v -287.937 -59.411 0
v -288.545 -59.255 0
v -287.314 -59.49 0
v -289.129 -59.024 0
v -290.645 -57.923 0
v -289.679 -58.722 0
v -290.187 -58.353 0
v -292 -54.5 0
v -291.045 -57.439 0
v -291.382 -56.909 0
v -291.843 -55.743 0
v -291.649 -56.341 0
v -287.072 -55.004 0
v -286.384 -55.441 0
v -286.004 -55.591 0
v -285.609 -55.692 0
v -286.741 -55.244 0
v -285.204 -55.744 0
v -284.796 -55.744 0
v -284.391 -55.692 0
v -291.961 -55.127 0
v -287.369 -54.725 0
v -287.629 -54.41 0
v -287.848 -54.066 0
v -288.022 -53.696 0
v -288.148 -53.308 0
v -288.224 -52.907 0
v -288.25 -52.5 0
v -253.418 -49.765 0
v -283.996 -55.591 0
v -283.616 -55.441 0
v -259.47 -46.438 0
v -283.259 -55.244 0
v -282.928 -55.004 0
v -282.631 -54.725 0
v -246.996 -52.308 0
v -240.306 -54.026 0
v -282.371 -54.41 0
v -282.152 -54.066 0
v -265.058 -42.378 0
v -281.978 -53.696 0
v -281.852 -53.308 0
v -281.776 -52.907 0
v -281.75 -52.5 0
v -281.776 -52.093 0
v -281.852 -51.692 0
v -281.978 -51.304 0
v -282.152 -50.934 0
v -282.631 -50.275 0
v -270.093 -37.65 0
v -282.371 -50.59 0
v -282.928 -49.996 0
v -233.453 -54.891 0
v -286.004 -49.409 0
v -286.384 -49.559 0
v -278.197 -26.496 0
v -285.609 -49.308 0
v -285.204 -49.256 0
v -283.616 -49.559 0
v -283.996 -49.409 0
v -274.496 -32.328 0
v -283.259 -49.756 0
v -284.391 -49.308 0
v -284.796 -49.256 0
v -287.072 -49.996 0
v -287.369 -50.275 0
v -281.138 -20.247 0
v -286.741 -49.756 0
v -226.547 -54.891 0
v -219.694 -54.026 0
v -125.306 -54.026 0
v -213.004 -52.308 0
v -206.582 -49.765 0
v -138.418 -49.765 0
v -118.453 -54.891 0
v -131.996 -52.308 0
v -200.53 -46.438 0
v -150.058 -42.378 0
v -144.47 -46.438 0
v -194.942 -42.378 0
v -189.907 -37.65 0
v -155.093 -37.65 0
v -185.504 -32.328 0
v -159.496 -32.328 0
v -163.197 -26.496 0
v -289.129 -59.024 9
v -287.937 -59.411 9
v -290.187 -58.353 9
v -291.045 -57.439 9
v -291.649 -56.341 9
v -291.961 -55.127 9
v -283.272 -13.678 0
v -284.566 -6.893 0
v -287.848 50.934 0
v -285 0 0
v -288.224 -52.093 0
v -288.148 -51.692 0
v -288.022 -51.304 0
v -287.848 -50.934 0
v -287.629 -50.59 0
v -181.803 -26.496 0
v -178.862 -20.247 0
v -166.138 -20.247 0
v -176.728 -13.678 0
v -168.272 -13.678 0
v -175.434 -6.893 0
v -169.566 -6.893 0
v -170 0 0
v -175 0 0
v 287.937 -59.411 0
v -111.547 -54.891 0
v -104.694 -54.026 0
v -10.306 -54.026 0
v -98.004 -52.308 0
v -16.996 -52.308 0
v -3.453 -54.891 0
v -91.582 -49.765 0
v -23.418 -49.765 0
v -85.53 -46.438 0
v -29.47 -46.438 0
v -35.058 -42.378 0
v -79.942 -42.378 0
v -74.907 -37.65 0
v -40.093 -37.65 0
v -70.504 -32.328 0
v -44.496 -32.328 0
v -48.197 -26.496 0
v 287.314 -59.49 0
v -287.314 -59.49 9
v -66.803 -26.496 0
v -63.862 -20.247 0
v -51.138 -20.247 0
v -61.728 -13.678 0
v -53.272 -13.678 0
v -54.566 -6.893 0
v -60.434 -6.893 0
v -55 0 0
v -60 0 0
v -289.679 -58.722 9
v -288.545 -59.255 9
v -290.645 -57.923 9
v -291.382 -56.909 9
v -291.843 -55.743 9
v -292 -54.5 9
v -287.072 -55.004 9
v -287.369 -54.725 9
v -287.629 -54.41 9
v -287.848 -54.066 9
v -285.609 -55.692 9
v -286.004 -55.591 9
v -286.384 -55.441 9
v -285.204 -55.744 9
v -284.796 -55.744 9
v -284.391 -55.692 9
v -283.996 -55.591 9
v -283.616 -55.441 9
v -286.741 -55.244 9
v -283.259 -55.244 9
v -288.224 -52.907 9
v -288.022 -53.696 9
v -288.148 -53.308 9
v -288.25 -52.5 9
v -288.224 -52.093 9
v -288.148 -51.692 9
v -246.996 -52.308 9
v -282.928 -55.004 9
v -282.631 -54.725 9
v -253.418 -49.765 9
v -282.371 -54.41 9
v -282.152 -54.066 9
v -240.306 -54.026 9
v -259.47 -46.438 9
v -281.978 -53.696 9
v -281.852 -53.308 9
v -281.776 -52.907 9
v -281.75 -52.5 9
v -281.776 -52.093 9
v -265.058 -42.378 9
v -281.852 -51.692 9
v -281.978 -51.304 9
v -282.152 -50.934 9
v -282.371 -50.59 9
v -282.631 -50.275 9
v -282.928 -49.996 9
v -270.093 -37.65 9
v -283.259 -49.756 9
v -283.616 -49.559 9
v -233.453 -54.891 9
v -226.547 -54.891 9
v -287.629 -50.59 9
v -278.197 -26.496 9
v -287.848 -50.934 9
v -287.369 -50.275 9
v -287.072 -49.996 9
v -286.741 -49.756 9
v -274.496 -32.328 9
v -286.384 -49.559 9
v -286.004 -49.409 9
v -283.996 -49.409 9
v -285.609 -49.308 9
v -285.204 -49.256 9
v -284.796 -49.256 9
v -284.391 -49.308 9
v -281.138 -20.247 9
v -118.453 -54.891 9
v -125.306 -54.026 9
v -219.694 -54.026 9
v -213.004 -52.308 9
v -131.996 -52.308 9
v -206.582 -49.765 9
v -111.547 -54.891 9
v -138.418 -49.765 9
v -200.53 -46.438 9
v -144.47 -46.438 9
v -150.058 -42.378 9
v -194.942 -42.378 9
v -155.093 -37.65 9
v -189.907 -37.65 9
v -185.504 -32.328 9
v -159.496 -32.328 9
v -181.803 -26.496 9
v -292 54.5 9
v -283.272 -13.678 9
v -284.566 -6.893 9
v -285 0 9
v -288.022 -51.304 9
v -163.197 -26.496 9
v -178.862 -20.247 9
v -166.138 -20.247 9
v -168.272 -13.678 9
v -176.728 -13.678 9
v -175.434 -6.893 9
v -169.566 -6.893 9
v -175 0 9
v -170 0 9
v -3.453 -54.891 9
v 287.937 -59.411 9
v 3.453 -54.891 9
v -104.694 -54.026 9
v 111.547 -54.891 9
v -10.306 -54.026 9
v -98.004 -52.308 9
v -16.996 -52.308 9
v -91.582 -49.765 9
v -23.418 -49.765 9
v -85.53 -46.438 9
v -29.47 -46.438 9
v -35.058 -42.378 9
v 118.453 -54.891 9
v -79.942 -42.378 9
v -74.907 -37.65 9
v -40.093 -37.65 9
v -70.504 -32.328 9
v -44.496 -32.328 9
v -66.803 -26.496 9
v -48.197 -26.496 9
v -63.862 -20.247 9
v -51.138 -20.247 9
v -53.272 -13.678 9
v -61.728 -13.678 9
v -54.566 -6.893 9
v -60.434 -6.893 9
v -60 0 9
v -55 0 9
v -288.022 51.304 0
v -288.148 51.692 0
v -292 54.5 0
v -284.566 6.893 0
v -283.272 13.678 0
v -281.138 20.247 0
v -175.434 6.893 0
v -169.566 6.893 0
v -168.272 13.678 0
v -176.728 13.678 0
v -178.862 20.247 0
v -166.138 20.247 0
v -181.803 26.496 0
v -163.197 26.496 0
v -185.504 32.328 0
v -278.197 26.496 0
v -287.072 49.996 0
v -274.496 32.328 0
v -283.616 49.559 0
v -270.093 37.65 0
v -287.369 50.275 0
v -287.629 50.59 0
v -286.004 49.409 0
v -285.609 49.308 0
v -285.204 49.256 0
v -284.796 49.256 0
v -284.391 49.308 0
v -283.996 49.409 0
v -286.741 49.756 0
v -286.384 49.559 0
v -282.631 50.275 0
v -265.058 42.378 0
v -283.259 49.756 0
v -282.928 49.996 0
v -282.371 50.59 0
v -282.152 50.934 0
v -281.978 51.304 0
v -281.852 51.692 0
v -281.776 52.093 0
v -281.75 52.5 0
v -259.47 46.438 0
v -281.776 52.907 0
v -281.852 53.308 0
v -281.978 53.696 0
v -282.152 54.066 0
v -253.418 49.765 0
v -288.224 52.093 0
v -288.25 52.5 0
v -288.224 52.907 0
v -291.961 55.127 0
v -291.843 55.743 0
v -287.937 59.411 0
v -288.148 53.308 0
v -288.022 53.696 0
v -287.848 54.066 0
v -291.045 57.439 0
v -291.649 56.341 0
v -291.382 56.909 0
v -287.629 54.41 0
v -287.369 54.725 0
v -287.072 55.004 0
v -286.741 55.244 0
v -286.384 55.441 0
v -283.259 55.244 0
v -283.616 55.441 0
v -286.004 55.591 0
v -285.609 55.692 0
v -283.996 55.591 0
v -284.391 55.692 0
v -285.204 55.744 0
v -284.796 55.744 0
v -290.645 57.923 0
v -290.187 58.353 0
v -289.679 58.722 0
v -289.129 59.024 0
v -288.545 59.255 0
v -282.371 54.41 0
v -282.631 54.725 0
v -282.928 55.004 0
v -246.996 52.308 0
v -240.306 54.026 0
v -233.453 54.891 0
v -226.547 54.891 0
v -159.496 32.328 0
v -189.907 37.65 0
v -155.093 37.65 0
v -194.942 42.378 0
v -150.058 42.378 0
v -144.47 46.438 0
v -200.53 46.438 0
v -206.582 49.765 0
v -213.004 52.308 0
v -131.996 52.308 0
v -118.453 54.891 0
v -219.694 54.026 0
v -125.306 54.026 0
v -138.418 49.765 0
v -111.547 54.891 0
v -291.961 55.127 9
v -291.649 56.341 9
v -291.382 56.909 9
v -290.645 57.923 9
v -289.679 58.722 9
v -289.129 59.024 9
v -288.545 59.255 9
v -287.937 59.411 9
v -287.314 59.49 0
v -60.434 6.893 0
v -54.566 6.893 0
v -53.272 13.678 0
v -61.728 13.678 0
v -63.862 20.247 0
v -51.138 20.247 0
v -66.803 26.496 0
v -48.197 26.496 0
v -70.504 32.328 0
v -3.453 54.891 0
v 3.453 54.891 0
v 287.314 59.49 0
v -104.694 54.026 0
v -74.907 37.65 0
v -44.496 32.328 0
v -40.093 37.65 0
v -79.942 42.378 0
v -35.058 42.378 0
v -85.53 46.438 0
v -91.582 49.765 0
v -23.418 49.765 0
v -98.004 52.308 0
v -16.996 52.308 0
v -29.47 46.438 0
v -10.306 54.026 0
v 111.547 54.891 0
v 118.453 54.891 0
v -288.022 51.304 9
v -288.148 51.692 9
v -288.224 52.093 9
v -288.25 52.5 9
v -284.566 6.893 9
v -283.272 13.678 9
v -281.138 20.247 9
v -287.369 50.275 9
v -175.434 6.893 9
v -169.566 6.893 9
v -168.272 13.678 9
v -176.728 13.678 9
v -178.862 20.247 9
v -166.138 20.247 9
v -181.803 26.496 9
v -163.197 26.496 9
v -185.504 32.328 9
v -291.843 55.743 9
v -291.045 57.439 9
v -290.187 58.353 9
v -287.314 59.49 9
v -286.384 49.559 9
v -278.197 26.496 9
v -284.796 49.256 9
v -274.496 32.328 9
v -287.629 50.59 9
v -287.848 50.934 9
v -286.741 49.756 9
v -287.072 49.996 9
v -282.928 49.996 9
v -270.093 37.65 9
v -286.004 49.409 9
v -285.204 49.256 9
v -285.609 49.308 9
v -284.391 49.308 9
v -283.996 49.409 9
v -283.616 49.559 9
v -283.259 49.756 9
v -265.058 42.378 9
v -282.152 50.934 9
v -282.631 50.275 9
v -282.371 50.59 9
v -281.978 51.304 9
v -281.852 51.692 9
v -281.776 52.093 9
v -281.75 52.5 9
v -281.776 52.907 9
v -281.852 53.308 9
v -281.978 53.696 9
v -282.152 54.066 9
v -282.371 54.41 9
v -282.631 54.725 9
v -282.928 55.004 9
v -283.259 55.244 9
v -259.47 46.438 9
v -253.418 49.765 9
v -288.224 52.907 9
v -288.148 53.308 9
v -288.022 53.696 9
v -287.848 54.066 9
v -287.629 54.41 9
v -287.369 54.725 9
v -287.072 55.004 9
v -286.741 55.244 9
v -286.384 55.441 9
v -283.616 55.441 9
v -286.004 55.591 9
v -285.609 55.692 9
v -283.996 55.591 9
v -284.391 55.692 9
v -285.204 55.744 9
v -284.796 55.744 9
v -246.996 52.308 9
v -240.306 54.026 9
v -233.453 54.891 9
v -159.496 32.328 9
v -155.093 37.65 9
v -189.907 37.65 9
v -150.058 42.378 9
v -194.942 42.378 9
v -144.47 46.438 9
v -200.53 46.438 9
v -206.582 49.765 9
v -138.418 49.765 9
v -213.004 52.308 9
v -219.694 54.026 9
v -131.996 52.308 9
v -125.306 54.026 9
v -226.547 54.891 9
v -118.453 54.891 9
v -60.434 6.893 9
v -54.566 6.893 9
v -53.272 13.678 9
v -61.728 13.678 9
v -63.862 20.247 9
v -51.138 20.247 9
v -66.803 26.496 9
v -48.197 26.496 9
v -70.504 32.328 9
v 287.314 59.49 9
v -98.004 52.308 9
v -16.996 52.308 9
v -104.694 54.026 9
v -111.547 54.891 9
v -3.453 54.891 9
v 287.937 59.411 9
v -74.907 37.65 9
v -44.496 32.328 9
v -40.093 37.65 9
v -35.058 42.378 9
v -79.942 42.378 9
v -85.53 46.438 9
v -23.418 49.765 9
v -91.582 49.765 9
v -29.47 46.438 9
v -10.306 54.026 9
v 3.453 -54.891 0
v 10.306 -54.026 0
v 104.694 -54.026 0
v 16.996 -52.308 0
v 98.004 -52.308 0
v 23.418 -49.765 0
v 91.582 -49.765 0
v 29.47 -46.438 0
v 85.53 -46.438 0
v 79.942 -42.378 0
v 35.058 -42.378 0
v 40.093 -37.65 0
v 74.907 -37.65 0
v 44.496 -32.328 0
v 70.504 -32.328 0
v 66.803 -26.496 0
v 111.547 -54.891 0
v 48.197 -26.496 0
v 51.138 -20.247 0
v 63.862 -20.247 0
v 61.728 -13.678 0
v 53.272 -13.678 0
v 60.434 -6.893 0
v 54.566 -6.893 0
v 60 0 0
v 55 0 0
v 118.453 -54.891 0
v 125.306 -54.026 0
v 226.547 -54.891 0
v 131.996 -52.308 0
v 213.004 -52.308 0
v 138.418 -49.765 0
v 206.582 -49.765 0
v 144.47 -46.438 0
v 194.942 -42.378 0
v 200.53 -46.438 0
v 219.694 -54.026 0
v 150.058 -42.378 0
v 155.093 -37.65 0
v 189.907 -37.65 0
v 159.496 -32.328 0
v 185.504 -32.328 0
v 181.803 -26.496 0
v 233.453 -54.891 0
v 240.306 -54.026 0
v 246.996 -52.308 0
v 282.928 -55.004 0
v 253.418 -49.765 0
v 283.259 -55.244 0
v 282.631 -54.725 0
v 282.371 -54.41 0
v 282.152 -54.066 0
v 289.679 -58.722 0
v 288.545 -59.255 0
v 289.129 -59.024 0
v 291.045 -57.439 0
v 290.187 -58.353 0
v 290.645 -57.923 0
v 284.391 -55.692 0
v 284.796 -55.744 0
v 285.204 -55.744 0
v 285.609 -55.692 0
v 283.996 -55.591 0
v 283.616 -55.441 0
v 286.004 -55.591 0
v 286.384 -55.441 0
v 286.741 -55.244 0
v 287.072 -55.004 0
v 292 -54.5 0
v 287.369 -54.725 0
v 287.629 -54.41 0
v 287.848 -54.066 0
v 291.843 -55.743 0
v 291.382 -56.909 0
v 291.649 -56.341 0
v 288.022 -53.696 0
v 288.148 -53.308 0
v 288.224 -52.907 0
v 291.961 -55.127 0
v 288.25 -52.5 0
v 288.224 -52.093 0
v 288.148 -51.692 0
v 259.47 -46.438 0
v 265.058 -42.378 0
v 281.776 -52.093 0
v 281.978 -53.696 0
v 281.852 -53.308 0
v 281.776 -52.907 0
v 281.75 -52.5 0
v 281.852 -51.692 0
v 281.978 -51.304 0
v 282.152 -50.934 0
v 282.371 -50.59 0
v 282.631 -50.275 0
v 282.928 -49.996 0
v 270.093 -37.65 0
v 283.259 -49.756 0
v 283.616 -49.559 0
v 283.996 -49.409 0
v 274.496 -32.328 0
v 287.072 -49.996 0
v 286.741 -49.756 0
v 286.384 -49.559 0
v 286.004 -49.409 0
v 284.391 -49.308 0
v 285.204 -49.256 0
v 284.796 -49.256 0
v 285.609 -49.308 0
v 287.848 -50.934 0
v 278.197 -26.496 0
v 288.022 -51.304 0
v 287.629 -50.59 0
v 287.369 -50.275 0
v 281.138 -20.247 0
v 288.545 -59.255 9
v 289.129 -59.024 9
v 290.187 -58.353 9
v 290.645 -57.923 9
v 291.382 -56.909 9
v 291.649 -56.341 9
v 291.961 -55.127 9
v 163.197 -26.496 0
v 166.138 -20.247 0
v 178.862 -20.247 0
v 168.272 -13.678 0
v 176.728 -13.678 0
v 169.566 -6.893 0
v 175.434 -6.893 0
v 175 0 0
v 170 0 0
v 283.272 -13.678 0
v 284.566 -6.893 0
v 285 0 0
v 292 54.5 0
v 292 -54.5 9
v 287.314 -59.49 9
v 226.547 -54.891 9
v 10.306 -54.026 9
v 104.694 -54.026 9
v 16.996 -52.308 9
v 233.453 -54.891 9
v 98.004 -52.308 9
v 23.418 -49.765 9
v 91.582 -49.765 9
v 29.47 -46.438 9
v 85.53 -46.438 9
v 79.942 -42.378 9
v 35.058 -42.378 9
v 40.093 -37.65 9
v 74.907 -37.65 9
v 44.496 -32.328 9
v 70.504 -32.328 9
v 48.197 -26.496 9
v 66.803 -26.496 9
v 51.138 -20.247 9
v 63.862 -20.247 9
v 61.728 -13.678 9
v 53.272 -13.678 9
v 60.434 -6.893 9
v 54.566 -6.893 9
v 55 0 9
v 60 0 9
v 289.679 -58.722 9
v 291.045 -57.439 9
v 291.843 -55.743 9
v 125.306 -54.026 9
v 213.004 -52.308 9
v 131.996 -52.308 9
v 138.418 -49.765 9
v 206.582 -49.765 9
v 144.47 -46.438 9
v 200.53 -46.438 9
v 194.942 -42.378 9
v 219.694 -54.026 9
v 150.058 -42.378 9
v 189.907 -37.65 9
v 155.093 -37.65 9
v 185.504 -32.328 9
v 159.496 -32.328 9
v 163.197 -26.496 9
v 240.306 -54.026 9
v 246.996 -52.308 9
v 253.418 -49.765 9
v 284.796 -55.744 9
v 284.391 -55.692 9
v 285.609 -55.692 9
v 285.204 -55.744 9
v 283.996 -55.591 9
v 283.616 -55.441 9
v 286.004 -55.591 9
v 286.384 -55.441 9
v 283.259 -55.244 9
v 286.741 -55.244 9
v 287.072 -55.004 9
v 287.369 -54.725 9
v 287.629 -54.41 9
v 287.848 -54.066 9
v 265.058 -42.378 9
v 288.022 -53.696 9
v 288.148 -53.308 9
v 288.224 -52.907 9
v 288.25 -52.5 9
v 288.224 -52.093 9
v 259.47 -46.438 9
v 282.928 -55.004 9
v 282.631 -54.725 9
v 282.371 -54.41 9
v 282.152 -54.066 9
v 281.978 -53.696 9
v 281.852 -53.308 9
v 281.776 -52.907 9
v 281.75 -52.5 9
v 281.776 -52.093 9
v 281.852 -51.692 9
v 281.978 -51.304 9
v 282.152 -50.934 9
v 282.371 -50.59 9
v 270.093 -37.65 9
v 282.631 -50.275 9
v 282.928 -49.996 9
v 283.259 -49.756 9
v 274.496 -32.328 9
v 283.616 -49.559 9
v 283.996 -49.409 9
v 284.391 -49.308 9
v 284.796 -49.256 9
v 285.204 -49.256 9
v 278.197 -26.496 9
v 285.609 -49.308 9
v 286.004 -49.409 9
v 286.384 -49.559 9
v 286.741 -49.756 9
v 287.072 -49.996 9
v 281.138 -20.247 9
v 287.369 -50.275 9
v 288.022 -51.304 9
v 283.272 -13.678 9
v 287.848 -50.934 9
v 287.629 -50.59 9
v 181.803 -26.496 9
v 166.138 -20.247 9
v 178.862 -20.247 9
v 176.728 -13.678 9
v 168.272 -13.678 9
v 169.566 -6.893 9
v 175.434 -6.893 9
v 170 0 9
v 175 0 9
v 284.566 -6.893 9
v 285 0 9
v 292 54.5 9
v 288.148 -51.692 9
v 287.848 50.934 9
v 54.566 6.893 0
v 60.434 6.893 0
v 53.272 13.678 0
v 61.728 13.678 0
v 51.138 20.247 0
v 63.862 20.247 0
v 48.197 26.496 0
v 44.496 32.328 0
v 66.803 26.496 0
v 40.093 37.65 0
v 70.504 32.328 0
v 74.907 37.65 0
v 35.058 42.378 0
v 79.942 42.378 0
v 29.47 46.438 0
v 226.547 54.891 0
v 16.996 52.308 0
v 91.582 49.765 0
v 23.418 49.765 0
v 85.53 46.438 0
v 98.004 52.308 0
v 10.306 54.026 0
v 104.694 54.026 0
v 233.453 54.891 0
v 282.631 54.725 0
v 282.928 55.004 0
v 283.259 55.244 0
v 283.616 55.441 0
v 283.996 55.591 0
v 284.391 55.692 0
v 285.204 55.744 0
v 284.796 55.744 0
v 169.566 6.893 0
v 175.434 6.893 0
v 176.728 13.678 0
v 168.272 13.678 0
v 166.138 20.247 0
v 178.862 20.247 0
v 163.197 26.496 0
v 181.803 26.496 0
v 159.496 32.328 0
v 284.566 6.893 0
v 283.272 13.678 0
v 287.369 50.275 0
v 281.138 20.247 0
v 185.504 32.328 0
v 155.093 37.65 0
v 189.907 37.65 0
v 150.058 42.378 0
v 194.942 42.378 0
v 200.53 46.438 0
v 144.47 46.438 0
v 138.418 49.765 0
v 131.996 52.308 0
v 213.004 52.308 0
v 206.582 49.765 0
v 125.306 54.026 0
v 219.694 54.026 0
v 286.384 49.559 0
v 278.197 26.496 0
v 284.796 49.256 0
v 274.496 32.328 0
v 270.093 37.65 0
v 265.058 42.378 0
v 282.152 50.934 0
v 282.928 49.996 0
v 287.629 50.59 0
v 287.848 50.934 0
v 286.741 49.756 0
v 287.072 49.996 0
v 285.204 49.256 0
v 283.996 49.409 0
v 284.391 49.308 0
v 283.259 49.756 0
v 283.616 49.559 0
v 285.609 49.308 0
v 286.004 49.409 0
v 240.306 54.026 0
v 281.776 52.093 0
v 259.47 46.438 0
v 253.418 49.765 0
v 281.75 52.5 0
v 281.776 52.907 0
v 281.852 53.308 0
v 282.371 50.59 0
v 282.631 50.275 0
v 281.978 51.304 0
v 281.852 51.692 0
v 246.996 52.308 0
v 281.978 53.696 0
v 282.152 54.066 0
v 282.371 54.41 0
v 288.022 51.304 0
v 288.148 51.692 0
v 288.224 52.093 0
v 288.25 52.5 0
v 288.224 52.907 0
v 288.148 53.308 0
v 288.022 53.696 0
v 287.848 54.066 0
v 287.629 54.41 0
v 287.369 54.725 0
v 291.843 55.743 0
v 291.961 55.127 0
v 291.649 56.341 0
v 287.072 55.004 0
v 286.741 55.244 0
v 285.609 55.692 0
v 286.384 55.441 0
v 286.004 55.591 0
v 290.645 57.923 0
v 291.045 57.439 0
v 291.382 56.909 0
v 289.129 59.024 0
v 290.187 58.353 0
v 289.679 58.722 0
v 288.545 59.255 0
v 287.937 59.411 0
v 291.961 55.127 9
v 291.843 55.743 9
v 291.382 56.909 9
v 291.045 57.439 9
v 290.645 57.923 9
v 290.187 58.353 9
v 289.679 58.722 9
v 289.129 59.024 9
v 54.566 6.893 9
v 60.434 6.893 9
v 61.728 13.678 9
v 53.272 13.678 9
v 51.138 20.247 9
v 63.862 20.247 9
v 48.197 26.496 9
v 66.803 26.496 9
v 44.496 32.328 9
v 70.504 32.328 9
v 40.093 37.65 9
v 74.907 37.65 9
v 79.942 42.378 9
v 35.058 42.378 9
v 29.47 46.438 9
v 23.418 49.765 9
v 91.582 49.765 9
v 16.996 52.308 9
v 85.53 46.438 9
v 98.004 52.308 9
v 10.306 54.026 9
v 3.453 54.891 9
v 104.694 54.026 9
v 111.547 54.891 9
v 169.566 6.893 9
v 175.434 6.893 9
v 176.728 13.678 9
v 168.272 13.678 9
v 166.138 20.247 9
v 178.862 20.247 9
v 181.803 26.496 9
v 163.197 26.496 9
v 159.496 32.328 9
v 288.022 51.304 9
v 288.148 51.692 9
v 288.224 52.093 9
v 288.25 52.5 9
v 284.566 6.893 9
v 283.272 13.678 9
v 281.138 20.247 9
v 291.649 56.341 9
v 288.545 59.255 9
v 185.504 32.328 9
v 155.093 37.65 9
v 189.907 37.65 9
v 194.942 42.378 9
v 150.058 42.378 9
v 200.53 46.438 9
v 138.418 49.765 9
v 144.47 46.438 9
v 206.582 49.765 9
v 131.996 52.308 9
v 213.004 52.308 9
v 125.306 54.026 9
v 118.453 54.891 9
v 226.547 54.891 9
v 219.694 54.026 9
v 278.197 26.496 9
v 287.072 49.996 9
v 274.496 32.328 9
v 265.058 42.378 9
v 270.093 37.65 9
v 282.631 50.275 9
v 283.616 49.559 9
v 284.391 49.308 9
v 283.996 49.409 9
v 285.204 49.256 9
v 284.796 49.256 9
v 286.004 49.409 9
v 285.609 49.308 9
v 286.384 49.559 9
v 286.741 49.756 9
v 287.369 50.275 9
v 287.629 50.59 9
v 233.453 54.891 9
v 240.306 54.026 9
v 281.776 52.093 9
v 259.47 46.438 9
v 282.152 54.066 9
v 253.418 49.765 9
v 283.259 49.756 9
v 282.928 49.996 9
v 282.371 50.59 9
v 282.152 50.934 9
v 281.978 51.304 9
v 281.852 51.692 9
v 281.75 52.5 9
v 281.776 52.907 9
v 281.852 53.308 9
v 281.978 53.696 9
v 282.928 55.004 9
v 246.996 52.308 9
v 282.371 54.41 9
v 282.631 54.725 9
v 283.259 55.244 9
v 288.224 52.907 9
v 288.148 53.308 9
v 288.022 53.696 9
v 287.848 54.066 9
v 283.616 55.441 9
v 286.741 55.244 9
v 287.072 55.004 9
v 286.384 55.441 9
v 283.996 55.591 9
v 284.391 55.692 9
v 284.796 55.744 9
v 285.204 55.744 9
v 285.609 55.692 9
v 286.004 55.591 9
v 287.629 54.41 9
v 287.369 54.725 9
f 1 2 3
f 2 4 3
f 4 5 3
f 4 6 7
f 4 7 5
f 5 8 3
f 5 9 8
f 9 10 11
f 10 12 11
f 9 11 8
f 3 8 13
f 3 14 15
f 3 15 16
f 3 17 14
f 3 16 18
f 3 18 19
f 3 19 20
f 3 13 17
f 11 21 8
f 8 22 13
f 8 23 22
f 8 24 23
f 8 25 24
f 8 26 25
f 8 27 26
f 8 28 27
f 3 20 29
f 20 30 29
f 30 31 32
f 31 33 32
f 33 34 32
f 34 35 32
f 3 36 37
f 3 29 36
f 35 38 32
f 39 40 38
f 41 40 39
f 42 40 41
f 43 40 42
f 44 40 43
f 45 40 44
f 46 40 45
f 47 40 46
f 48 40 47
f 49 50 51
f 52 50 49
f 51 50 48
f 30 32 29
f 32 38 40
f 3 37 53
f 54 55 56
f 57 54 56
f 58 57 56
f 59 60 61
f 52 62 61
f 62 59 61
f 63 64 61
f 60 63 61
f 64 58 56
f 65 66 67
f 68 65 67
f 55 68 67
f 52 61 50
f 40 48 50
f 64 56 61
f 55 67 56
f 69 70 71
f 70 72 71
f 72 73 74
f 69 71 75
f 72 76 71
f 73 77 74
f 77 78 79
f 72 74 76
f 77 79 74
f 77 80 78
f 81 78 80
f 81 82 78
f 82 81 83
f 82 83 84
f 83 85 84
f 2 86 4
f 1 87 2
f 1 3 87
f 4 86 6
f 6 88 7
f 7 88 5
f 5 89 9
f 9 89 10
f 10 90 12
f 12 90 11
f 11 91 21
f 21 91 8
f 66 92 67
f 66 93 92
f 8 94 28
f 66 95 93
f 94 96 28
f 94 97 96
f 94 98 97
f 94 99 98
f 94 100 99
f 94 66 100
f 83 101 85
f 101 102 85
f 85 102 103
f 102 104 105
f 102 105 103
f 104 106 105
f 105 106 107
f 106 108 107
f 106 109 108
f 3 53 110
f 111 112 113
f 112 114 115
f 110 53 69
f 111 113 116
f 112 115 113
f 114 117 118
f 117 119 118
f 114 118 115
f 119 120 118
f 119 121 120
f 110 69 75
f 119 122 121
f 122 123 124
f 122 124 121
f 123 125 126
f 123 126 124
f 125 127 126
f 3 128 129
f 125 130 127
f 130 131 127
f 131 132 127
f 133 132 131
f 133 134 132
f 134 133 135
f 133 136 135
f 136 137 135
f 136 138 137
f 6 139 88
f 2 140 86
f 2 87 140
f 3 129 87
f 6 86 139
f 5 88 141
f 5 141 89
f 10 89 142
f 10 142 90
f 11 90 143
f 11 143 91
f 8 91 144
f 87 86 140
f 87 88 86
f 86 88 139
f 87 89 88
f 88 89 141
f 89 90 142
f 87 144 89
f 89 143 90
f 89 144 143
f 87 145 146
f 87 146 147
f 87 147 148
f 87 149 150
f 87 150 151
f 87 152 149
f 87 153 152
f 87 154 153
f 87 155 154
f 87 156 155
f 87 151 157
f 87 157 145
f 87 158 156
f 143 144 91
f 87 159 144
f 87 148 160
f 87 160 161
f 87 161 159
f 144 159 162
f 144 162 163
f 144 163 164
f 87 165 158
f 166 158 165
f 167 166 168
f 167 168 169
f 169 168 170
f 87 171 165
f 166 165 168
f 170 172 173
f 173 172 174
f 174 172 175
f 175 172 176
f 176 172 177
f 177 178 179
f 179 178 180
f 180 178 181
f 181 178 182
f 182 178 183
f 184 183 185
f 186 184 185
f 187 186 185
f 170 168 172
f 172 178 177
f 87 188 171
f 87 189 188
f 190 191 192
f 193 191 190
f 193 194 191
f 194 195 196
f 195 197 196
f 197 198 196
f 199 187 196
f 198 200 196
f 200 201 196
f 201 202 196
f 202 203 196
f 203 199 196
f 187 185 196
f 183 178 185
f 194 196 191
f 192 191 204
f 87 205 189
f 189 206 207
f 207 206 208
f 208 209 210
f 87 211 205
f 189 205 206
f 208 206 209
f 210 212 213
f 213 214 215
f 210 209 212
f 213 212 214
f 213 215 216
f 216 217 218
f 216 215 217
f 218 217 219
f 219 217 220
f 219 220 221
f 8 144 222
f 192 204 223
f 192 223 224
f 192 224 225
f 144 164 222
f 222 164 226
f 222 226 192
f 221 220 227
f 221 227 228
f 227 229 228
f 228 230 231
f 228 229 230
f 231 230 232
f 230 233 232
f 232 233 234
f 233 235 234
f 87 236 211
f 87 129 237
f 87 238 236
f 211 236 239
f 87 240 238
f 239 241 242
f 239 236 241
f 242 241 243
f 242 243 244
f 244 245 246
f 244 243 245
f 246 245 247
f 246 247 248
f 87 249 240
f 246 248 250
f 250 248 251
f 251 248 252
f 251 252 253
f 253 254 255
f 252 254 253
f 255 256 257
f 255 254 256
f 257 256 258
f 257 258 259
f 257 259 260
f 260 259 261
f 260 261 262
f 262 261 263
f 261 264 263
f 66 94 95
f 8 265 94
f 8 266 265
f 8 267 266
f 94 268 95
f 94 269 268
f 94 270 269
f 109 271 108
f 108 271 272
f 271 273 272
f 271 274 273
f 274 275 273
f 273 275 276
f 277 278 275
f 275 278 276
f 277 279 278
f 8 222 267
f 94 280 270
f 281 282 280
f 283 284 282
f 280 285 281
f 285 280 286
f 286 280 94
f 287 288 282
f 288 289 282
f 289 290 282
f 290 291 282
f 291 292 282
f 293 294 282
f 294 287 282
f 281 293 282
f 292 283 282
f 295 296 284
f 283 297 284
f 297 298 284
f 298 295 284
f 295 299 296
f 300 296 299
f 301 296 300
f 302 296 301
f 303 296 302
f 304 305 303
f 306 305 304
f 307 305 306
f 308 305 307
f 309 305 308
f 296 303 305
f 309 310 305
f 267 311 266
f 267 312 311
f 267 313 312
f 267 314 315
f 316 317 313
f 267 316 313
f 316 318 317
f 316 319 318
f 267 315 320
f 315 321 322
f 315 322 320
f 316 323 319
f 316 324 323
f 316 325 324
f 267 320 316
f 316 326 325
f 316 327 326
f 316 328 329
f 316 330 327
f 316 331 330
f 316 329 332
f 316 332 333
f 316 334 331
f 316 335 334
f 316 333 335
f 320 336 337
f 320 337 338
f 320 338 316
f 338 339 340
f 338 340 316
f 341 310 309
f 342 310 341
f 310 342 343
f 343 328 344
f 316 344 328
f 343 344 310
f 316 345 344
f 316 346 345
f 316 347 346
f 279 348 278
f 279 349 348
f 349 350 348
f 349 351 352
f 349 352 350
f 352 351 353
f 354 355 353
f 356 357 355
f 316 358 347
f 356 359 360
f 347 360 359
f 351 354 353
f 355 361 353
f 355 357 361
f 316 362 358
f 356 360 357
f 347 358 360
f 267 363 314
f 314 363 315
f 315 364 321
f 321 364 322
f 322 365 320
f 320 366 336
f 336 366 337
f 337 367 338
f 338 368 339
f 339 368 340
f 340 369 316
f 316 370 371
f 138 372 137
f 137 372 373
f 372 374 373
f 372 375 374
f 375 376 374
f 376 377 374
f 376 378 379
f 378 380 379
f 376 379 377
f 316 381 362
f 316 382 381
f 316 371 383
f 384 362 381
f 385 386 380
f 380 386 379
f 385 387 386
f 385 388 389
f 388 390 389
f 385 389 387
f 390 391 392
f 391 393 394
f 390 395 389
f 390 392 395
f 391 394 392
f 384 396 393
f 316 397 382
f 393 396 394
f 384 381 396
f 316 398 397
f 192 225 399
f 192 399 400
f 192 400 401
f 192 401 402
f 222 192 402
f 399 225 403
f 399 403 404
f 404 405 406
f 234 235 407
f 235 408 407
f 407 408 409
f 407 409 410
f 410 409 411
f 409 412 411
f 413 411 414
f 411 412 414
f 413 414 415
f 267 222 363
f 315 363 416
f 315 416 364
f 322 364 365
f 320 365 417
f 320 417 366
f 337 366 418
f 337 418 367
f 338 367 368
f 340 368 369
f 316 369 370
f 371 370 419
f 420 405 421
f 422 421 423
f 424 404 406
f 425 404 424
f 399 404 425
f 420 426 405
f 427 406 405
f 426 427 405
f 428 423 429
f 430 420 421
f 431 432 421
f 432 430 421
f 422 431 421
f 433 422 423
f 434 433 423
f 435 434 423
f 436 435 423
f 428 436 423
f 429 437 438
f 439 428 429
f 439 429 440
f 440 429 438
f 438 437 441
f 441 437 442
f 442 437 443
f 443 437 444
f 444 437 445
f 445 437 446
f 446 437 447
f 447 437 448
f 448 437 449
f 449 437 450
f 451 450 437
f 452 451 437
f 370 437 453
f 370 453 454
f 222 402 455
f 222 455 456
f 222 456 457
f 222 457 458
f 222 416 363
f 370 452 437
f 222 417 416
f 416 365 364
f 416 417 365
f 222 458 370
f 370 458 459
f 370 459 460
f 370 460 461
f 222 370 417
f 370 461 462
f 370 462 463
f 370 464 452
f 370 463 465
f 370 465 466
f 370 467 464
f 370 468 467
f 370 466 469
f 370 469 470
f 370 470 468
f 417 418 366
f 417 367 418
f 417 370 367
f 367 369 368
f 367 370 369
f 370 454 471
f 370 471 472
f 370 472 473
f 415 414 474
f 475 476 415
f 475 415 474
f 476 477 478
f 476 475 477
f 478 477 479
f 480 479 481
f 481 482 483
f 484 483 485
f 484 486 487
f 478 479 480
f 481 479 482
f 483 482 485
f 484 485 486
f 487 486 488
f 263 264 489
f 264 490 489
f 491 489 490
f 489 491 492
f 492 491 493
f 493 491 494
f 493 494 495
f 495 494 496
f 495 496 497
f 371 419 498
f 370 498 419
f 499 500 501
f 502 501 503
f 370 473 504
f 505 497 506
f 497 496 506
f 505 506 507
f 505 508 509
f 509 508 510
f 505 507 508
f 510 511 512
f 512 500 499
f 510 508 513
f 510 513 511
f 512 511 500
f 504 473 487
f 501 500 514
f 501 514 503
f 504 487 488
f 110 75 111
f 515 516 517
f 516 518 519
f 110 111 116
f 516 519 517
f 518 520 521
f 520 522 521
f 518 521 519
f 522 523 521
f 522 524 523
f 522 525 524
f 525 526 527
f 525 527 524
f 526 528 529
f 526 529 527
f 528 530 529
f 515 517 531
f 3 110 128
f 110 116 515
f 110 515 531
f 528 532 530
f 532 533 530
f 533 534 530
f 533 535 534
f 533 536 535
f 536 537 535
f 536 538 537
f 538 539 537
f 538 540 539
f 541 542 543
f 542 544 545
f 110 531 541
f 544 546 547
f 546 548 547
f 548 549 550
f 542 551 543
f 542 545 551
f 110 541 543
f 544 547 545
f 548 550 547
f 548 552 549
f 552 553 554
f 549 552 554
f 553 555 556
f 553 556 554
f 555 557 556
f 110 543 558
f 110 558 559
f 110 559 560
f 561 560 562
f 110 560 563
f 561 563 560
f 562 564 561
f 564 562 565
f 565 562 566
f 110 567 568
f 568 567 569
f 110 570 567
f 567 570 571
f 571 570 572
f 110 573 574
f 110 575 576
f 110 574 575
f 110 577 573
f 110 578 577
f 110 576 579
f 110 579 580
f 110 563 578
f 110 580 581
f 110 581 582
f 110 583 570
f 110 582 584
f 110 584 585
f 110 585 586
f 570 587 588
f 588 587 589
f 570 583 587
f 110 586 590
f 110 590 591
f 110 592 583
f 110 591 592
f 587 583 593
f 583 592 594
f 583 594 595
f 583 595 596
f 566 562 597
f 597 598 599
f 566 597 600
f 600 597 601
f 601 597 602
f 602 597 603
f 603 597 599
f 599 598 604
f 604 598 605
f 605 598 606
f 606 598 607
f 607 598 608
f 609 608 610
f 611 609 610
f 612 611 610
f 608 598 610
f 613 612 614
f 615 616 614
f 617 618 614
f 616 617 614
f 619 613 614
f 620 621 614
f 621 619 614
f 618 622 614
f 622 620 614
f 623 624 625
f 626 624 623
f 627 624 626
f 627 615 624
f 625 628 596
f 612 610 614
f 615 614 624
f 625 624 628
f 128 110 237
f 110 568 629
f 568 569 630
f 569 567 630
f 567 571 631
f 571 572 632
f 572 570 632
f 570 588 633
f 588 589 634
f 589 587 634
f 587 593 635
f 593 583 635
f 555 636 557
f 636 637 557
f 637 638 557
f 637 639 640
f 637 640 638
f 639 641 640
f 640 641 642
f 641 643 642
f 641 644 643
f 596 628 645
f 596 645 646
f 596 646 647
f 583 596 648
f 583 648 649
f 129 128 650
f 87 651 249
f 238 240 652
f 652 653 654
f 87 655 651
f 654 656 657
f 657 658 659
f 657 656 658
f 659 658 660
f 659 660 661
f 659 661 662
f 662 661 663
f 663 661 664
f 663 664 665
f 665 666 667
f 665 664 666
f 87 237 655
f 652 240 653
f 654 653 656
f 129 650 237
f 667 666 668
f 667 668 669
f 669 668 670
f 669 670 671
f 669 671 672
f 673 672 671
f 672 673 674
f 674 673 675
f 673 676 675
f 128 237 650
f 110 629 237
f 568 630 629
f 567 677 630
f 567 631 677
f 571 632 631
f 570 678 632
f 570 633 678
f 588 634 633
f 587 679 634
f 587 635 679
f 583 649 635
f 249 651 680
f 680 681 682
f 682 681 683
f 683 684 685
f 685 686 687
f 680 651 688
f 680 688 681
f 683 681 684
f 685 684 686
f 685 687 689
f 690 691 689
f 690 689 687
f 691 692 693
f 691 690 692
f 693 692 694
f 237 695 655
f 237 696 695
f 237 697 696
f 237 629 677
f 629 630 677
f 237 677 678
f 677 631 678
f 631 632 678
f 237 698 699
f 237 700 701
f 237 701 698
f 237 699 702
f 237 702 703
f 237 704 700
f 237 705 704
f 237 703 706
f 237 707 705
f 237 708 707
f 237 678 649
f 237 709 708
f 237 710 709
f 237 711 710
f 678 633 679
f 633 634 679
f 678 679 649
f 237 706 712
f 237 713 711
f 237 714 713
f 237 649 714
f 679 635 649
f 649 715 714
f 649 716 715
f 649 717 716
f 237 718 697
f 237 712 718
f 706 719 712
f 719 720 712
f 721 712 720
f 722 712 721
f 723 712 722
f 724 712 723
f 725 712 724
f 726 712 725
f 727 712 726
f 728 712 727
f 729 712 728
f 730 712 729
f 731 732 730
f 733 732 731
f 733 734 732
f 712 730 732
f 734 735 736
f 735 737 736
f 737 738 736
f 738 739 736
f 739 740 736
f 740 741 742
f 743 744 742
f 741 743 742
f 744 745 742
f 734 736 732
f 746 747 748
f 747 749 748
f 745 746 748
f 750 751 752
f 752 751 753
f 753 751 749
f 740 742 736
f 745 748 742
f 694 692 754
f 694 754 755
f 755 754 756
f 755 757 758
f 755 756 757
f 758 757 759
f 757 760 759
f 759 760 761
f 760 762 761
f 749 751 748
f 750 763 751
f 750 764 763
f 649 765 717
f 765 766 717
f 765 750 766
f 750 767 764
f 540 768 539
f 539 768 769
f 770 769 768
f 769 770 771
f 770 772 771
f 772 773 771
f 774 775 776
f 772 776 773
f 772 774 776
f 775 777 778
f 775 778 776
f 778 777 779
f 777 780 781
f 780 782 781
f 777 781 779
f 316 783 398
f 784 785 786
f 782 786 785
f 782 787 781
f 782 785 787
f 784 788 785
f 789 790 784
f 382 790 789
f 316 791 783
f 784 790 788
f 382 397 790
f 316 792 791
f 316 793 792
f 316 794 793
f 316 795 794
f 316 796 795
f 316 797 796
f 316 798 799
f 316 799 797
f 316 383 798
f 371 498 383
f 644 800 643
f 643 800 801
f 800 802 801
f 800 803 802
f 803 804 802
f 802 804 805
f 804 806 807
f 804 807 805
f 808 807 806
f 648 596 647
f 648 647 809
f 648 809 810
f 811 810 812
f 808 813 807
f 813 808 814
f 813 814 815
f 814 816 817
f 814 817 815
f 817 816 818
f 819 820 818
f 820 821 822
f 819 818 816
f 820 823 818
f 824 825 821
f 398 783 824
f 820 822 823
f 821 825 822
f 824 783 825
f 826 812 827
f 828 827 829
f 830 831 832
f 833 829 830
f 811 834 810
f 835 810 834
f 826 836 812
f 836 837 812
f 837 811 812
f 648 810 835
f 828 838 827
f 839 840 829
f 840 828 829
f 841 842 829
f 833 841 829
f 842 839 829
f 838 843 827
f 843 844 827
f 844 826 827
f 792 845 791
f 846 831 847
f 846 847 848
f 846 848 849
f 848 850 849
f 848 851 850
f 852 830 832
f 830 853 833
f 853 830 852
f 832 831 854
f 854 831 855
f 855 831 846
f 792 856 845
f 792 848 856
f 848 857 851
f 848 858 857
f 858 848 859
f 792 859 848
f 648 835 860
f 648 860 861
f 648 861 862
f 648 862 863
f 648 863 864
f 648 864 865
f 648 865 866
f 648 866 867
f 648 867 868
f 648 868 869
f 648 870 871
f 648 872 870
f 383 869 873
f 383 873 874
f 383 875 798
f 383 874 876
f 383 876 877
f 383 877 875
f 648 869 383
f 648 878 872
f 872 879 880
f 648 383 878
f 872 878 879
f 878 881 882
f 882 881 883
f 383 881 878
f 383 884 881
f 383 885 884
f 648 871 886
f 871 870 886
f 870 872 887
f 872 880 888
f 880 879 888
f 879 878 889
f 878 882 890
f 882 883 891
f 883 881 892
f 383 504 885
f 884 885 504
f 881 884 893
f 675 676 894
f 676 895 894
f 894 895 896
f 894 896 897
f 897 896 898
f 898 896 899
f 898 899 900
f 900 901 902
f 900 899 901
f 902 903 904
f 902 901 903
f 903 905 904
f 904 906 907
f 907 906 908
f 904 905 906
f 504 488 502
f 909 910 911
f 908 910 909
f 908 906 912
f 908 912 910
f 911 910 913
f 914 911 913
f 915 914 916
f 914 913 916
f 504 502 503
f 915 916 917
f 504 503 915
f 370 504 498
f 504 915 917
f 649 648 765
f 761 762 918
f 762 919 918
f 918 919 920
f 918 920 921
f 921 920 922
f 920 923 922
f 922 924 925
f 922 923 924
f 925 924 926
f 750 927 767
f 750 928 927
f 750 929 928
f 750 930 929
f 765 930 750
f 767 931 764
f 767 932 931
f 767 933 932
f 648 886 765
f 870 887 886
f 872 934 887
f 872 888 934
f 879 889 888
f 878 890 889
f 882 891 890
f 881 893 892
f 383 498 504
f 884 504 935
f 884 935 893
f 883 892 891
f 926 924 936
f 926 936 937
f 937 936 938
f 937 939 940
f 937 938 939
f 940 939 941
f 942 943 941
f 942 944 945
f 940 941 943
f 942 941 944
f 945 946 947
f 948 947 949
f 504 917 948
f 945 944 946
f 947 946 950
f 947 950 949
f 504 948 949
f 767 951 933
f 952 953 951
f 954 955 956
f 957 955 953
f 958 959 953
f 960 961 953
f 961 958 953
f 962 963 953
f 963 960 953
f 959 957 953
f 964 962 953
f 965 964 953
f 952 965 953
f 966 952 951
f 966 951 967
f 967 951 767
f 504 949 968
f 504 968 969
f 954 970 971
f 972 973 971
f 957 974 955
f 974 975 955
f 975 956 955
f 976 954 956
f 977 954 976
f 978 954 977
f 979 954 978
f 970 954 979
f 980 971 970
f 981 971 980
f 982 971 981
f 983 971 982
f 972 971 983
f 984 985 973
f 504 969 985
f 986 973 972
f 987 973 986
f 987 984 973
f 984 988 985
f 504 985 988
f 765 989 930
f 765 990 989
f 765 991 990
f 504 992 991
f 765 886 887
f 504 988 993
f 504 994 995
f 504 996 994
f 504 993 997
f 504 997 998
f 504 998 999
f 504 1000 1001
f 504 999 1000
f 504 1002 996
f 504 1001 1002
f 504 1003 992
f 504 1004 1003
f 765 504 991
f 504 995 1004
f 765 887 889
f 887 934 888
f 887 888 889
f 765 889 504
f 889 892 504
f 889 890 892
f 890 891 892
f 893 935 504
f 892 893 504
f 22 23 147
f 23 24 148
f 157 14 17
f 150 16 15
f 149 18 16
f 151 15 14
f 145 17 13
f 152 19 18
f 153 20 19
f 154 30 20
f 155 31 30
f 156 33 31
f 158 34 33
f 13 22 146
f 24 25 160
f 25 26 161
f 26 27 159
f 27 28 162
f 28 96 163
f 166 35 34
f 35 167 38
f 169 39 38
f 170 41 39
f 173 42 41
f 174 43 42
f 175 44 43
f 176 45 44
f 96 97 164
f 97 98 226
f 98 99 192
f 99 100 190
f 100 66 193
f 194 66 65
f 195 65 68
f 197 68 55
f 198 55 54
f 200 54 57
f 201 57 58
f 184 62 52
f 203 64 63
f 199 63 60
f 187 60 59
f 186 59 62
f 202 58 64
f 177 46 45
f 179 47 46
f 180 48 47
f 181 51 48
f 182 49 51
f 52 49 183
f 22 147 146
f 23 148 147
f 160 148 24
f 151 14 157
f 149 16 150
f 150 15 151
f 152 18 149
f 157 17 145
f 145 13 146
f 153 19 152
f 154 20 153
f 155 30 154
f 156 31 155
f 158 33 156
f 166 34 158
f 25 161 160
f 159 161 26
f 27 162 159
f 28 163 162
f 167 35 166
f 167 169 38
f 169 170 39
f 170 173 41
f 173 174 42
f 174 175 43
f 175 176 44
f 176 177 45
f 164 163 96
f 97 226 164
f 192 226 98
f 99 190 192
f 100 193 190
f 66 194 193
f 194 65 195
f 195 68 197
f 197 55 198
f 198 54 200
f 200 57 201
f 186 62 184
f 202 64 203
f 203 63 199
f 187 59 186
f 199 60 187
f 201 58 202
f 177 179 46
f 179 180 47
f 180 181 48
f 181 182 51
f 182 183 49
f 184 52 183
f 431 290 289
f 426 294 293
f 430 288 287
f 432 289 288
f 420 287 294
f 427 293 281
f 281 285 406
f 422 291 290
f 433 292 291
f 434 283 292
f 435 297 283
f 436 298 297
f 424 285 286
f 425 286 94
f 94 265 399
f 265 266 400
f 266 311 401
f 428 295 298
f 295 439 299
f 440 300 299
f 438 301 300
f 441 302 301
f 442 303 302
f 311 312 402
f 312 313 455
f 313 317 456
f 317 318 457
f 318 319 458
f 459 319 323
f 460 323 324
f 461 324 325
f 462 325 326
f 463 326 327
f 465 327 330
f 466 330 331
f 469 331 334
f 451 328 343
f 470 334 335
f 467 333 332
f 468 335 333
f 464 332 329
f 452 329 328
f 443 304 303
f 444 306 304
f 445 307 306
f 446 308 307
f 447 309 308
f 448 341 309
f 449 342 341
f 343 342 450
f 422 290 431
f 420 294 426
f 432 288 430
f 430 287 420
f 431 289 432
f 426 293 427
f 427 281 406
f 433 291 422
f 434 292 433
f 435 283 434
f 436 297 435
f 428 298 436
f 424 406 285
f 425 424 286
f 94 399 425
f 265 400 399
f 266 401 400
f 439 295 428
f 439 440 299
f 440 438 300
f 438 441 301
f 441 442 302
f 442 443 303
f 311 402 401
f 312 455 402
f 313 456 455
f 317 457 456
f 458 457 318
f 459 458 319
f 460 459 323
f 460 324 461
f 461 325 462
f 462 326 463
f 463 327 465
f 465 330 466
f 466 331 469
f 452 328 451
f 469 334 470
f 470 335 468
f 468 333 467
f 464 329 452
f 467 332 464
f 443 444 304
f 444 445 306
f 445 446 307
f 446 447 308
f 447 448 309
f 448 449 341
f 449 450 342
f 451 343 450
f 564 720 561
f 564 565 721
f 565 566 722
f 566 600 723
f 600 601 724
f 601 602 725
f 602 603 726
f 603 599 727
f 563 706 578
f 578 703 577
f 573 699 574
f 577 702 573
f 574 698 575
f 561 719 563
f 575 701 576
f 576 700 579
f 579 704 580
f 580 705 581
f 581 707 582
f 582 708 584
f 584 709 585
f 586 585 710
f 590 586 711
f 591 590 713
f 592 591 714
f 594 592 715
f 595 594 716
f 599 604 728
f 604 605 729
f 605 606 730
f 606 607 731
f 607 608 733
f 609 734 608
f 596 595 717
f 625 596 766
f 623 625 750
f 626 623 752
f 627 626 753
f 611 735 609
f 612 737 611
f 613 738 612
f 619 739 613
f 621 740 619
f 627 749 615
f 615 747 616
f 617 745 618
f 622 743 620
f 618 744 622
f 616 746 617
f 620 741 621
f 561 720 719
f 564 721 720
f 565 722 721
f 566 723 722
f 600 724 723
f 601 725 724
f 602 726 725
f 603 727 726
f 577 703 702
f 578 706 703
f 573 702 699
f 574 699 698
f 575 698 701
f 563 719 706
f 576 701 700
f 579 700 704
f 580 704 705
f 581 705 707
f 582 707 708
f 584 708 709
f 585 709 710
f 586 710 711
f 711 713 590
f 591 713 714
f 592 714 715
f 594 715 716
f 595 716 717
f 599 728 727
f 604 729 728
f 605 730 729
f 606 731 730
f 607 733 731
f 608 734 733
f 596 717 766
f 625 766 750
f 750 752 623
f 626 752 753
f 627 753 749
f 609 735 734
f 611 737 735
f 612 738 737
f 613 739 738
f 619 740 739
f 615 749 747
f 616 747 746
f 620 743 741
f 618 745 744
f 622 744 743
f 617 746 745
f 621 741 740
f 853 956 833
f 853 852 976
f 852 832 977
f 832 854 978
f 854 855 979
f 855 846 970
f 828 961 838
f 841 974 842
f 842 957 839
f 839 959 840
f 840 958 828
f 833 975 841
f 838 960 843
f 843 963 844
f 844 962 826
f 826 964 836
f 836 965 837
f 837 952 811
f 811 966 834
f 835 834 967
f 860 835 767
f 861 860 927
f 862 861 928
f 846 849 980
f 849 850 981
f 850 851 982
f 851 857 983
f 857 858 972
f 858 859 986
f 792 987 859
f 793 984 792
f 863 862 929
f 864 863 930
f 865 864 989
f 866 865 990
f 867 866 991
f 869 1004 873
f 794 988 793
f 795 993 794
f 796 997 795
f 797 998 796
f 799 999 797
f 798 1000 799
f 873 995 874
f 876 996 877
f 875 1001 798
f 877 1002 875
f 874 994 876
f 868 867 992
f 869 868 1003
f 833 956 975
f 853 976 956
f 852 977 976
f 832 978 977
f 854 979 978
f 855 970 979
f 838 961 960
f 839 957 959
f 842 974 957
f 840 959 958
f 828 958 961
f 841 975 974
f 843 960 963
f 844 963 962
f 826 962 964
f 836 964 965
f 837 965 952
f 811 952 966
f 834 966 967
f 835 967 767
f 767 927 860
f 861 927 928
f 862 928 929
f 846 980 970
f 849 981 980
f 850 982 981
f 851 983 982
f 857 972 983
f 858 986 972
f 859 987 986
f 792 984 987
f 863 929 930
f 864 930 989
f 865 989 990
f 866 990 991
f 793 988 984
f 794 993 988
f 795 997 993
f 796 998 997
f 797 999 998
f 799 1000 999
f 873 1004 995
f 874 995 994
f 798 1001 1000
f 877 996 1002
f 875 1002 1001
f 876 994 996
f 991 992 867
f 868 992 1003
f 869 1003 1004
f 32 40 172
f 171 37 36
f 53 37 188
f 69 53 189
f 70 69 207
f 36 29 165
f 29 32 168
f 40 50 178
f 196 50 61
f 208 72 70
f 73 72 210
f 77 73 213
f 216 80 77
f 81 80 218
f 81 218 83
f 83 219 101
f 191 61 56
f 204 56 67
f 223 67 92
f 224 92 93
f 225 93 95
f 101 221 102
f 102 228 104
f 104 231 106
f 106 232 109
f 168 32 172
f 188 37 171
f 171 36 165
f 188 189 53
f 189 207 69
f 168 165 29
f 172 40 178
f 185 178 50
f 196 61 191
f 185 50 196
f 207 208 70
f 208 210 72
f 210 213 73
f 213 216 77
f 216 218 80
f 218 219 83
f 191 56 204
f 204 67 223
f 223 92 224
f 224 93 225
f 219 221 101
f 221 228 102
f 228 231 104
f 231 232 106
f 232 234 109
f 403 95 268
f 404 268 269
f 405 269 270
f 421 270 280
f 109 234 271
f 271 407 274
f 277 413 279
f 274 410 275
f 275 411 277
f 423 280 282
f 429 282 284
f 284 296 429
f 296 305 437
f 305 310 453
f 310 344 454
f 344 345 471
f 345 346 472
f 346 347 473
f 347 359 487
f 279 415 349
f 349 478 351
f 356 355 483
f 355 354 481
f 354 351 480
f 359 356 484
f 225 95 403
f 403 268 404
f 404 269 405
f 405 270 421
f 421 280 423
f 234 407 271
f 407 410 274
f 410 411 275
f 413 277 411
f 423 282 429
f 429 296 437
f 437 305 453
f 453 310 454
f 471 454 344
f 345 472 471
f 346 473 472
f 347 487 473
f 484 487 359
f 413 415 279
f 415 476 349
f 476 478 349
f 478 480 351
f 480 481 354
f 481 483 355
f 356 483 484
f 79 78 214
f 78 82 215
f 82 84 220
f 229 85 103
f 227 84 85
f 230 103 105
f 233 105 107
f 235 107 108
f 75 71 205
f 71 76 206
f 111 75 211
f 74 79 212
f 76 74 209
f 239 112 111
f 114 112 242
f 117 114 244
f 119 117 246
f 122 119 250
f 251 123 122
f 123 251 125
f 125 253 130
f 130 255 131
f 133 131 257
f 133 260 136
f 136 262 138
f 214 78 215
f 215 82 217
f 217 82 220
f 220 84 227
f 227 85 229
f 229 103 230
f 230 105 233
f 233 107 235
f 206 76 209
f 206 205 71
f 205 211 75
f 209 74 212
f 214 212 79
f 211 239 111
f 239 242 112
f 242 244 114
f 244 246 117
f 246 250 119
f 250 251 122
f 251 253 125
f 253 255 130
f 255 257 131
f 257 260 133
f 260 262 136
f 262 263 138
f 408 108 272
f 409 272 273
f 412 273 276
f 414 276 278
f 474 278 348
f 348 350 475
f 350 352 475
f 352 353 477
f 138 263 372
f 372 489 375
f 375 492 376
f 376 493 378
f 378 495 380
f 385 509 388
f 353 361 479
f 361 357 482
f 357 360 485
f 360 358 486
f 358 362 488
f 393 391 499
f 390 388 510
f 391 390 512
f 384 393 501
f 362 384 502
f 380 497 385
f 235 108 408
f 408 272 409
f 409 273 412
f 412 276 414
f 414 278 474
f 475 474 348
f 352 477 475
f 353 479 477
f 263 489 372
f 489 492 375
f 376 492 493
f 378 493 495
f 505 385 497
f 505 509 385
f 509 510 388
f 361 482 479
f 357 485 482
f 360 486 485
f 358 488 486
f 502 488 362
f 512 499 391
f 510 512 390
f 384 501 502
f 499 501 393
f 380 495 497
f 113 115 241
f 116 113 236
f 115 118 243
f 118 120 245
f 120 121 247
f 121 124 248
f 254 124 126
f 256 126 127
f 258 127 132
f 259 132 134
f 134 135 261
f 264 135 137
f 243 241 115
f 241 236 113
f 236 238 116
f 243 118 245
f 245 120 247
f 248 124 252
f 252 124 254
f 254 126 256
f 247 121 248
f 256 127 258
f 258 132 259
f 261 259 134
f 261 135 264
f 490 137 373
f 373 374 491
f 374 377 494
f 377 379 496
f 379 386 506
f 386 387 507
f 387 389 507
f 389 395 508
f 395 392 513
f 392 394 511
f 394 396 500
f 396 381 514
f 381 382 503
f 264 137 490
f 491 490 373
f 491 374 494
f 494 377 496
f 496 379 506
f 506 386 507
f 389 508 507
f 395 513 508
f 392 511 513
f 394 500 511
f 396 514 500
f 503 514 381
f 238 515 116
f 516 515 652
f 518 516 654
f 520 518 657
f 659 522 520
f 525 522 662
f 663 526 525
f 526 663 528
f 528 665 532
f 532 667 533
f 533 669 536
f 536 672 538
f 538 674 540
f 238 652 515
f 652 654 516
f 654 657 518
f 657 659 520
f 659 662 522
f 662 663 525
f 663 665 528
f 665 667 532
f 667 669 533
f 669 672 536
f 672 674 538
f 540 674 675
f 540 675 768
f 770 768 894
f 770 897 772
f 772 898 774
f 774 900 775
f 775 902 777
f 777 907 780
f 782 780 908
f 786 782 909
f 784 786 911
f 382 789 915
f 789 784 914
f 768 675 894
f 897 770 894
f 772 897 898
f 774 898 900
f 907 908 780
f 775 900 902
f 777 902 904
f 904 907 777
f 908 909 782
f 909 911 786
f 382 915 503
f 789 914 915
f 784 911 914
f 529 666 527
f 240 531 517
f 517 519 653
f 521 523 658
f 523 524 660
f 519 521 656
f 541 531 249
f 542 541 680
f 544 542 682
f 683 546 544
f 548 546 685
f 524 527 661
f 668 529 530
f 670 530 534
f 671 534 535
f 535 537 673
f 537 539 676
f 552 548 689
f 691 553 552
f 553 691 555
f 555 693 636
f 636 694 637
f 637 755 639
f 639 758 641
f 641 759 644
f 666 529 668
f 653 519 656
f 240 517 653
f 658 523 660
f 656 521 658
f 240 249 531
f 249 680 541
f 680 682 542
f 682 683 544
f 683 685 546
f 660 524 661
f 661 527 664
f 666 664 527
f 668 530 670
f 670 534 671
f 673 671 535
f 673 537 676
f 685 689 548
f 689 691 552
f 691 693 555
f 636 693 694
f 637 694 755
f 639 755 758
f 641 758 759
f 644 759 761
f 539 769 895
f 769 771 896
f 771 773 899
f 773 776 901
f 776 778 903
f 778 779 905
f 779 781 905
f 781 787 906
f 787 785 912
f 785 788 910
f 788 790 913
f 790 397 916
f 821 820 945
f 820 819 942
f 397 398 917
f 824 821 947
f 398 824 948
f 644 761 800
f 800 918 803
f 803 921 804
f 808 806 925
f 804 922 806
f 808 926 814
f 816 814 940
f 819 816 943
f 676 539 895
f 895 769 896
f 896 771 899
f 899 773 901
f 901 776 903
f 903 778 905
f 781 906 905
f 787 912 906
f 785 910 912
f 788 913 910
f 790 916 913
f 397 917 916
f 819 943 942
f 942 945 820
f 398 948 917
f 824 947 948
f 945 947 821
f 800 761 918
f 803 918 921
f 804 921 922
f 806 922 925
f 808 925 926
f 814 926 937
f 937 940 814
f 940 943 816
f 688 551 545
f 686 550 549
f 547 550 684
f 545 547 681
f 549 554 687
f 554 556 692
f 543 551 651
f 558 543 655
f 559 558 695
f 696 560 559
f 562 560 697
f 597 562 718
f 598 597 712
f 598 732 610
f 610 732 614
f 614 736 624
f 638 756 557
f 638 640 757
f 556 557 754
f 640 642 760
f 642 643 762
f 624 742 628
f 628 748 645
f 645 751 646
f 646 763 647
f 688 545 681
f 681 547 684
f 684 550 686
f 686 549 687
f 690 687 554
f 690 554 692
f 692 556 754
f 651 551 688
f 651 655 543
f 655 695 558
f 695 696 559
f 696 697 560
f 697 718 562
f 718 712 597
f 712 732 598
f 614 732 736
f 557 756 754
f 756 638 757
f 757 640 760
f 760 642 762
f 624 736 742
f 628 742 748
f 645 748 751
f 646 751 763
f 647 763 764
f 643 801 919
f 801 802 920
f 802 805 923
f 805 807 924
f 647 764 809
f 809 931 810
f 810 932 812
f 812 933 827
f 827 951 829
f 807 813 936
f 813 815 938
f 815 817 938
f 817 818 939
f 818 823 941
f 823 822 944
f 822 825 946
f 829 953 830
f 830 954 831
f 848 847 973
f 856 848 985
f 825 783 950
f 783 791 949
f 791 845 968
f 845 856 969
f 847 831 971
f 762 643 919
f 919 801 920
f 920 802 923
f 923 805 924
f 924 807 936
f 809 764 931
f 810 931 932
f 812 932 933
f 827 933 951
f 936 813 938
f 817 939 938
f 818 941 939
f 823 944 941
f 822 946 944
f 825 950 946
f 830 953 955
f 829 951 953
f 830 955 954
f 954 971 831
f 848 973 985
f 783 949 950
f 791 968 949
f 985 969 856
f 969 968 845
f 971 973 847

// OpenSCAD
$fn = 50;

difference() {
	union() {
		hull() {
			translate(v = [-287.0, 54.5, 0]) {
				cylinder(h = 9, r = 5);
			}
			translate(v = [287.0, 54.5, 0]) {
				cylinder(h = 9, r = 5);
			}
			translate(v = [-287.0, -54.5, 0]) {
				cylinder(h = 9, r = 5);
			}
			translate(v = [287.0, -54.5, 0]) {
				cylinder(h = 9, r = 5);
			}
		}
	}
	union() {
		translate(v = [-285.0, -52.5, -100.0]) {
			cylinder(h = 200, r = 3.25);
		}
		translate(v = [-285.0, 52.5, -100.0]) {
			cylinder(h = 200, r = 3.25);
		}
		translate(v = [285.0, -52.5, -100.0]) {
			cylinder(h = 200, r = 3.25);
		}
		translate(v = [285.0, 52.5, -100.0]) {
			cylinder(h = 200, r = 3.25);
		}
		translate(v = [-285.0, -52.5, -100.0]) {
			cylinder(h = 200, r = 1.8);
		}
		translate(v = [-285.0, 52.5, -100.0]) {
			cylinder(h = 200, r = 1.8);
		}
		translate(v = [285.0, -52.5, -100.0]) {
			cylinder(h = 200, r = 1.8);
		}
		translate(v = [285.0, 52.5, -100.0]) {
			cylinder(h = 200, r = 1.8);
		}
		translate(v = [-230.0, 0, 0.0]) {
			cylinder(h = 9, r = 55.0);
		}
		translate(v = [-115.0, 0, 0.0]) {
			cylinder(h = 9, r = 55.0);
		}
		cylinder(h = 9, r = 55.0);
		translate(v = [115.0, 0, 0.0]) {
			cylinder(h = 9, r = 55.0);
		}
		translate(v = [230.0, 0, 0.0]) {
			cylinder(h = 9, r = 55.0);
		}
	}
}
